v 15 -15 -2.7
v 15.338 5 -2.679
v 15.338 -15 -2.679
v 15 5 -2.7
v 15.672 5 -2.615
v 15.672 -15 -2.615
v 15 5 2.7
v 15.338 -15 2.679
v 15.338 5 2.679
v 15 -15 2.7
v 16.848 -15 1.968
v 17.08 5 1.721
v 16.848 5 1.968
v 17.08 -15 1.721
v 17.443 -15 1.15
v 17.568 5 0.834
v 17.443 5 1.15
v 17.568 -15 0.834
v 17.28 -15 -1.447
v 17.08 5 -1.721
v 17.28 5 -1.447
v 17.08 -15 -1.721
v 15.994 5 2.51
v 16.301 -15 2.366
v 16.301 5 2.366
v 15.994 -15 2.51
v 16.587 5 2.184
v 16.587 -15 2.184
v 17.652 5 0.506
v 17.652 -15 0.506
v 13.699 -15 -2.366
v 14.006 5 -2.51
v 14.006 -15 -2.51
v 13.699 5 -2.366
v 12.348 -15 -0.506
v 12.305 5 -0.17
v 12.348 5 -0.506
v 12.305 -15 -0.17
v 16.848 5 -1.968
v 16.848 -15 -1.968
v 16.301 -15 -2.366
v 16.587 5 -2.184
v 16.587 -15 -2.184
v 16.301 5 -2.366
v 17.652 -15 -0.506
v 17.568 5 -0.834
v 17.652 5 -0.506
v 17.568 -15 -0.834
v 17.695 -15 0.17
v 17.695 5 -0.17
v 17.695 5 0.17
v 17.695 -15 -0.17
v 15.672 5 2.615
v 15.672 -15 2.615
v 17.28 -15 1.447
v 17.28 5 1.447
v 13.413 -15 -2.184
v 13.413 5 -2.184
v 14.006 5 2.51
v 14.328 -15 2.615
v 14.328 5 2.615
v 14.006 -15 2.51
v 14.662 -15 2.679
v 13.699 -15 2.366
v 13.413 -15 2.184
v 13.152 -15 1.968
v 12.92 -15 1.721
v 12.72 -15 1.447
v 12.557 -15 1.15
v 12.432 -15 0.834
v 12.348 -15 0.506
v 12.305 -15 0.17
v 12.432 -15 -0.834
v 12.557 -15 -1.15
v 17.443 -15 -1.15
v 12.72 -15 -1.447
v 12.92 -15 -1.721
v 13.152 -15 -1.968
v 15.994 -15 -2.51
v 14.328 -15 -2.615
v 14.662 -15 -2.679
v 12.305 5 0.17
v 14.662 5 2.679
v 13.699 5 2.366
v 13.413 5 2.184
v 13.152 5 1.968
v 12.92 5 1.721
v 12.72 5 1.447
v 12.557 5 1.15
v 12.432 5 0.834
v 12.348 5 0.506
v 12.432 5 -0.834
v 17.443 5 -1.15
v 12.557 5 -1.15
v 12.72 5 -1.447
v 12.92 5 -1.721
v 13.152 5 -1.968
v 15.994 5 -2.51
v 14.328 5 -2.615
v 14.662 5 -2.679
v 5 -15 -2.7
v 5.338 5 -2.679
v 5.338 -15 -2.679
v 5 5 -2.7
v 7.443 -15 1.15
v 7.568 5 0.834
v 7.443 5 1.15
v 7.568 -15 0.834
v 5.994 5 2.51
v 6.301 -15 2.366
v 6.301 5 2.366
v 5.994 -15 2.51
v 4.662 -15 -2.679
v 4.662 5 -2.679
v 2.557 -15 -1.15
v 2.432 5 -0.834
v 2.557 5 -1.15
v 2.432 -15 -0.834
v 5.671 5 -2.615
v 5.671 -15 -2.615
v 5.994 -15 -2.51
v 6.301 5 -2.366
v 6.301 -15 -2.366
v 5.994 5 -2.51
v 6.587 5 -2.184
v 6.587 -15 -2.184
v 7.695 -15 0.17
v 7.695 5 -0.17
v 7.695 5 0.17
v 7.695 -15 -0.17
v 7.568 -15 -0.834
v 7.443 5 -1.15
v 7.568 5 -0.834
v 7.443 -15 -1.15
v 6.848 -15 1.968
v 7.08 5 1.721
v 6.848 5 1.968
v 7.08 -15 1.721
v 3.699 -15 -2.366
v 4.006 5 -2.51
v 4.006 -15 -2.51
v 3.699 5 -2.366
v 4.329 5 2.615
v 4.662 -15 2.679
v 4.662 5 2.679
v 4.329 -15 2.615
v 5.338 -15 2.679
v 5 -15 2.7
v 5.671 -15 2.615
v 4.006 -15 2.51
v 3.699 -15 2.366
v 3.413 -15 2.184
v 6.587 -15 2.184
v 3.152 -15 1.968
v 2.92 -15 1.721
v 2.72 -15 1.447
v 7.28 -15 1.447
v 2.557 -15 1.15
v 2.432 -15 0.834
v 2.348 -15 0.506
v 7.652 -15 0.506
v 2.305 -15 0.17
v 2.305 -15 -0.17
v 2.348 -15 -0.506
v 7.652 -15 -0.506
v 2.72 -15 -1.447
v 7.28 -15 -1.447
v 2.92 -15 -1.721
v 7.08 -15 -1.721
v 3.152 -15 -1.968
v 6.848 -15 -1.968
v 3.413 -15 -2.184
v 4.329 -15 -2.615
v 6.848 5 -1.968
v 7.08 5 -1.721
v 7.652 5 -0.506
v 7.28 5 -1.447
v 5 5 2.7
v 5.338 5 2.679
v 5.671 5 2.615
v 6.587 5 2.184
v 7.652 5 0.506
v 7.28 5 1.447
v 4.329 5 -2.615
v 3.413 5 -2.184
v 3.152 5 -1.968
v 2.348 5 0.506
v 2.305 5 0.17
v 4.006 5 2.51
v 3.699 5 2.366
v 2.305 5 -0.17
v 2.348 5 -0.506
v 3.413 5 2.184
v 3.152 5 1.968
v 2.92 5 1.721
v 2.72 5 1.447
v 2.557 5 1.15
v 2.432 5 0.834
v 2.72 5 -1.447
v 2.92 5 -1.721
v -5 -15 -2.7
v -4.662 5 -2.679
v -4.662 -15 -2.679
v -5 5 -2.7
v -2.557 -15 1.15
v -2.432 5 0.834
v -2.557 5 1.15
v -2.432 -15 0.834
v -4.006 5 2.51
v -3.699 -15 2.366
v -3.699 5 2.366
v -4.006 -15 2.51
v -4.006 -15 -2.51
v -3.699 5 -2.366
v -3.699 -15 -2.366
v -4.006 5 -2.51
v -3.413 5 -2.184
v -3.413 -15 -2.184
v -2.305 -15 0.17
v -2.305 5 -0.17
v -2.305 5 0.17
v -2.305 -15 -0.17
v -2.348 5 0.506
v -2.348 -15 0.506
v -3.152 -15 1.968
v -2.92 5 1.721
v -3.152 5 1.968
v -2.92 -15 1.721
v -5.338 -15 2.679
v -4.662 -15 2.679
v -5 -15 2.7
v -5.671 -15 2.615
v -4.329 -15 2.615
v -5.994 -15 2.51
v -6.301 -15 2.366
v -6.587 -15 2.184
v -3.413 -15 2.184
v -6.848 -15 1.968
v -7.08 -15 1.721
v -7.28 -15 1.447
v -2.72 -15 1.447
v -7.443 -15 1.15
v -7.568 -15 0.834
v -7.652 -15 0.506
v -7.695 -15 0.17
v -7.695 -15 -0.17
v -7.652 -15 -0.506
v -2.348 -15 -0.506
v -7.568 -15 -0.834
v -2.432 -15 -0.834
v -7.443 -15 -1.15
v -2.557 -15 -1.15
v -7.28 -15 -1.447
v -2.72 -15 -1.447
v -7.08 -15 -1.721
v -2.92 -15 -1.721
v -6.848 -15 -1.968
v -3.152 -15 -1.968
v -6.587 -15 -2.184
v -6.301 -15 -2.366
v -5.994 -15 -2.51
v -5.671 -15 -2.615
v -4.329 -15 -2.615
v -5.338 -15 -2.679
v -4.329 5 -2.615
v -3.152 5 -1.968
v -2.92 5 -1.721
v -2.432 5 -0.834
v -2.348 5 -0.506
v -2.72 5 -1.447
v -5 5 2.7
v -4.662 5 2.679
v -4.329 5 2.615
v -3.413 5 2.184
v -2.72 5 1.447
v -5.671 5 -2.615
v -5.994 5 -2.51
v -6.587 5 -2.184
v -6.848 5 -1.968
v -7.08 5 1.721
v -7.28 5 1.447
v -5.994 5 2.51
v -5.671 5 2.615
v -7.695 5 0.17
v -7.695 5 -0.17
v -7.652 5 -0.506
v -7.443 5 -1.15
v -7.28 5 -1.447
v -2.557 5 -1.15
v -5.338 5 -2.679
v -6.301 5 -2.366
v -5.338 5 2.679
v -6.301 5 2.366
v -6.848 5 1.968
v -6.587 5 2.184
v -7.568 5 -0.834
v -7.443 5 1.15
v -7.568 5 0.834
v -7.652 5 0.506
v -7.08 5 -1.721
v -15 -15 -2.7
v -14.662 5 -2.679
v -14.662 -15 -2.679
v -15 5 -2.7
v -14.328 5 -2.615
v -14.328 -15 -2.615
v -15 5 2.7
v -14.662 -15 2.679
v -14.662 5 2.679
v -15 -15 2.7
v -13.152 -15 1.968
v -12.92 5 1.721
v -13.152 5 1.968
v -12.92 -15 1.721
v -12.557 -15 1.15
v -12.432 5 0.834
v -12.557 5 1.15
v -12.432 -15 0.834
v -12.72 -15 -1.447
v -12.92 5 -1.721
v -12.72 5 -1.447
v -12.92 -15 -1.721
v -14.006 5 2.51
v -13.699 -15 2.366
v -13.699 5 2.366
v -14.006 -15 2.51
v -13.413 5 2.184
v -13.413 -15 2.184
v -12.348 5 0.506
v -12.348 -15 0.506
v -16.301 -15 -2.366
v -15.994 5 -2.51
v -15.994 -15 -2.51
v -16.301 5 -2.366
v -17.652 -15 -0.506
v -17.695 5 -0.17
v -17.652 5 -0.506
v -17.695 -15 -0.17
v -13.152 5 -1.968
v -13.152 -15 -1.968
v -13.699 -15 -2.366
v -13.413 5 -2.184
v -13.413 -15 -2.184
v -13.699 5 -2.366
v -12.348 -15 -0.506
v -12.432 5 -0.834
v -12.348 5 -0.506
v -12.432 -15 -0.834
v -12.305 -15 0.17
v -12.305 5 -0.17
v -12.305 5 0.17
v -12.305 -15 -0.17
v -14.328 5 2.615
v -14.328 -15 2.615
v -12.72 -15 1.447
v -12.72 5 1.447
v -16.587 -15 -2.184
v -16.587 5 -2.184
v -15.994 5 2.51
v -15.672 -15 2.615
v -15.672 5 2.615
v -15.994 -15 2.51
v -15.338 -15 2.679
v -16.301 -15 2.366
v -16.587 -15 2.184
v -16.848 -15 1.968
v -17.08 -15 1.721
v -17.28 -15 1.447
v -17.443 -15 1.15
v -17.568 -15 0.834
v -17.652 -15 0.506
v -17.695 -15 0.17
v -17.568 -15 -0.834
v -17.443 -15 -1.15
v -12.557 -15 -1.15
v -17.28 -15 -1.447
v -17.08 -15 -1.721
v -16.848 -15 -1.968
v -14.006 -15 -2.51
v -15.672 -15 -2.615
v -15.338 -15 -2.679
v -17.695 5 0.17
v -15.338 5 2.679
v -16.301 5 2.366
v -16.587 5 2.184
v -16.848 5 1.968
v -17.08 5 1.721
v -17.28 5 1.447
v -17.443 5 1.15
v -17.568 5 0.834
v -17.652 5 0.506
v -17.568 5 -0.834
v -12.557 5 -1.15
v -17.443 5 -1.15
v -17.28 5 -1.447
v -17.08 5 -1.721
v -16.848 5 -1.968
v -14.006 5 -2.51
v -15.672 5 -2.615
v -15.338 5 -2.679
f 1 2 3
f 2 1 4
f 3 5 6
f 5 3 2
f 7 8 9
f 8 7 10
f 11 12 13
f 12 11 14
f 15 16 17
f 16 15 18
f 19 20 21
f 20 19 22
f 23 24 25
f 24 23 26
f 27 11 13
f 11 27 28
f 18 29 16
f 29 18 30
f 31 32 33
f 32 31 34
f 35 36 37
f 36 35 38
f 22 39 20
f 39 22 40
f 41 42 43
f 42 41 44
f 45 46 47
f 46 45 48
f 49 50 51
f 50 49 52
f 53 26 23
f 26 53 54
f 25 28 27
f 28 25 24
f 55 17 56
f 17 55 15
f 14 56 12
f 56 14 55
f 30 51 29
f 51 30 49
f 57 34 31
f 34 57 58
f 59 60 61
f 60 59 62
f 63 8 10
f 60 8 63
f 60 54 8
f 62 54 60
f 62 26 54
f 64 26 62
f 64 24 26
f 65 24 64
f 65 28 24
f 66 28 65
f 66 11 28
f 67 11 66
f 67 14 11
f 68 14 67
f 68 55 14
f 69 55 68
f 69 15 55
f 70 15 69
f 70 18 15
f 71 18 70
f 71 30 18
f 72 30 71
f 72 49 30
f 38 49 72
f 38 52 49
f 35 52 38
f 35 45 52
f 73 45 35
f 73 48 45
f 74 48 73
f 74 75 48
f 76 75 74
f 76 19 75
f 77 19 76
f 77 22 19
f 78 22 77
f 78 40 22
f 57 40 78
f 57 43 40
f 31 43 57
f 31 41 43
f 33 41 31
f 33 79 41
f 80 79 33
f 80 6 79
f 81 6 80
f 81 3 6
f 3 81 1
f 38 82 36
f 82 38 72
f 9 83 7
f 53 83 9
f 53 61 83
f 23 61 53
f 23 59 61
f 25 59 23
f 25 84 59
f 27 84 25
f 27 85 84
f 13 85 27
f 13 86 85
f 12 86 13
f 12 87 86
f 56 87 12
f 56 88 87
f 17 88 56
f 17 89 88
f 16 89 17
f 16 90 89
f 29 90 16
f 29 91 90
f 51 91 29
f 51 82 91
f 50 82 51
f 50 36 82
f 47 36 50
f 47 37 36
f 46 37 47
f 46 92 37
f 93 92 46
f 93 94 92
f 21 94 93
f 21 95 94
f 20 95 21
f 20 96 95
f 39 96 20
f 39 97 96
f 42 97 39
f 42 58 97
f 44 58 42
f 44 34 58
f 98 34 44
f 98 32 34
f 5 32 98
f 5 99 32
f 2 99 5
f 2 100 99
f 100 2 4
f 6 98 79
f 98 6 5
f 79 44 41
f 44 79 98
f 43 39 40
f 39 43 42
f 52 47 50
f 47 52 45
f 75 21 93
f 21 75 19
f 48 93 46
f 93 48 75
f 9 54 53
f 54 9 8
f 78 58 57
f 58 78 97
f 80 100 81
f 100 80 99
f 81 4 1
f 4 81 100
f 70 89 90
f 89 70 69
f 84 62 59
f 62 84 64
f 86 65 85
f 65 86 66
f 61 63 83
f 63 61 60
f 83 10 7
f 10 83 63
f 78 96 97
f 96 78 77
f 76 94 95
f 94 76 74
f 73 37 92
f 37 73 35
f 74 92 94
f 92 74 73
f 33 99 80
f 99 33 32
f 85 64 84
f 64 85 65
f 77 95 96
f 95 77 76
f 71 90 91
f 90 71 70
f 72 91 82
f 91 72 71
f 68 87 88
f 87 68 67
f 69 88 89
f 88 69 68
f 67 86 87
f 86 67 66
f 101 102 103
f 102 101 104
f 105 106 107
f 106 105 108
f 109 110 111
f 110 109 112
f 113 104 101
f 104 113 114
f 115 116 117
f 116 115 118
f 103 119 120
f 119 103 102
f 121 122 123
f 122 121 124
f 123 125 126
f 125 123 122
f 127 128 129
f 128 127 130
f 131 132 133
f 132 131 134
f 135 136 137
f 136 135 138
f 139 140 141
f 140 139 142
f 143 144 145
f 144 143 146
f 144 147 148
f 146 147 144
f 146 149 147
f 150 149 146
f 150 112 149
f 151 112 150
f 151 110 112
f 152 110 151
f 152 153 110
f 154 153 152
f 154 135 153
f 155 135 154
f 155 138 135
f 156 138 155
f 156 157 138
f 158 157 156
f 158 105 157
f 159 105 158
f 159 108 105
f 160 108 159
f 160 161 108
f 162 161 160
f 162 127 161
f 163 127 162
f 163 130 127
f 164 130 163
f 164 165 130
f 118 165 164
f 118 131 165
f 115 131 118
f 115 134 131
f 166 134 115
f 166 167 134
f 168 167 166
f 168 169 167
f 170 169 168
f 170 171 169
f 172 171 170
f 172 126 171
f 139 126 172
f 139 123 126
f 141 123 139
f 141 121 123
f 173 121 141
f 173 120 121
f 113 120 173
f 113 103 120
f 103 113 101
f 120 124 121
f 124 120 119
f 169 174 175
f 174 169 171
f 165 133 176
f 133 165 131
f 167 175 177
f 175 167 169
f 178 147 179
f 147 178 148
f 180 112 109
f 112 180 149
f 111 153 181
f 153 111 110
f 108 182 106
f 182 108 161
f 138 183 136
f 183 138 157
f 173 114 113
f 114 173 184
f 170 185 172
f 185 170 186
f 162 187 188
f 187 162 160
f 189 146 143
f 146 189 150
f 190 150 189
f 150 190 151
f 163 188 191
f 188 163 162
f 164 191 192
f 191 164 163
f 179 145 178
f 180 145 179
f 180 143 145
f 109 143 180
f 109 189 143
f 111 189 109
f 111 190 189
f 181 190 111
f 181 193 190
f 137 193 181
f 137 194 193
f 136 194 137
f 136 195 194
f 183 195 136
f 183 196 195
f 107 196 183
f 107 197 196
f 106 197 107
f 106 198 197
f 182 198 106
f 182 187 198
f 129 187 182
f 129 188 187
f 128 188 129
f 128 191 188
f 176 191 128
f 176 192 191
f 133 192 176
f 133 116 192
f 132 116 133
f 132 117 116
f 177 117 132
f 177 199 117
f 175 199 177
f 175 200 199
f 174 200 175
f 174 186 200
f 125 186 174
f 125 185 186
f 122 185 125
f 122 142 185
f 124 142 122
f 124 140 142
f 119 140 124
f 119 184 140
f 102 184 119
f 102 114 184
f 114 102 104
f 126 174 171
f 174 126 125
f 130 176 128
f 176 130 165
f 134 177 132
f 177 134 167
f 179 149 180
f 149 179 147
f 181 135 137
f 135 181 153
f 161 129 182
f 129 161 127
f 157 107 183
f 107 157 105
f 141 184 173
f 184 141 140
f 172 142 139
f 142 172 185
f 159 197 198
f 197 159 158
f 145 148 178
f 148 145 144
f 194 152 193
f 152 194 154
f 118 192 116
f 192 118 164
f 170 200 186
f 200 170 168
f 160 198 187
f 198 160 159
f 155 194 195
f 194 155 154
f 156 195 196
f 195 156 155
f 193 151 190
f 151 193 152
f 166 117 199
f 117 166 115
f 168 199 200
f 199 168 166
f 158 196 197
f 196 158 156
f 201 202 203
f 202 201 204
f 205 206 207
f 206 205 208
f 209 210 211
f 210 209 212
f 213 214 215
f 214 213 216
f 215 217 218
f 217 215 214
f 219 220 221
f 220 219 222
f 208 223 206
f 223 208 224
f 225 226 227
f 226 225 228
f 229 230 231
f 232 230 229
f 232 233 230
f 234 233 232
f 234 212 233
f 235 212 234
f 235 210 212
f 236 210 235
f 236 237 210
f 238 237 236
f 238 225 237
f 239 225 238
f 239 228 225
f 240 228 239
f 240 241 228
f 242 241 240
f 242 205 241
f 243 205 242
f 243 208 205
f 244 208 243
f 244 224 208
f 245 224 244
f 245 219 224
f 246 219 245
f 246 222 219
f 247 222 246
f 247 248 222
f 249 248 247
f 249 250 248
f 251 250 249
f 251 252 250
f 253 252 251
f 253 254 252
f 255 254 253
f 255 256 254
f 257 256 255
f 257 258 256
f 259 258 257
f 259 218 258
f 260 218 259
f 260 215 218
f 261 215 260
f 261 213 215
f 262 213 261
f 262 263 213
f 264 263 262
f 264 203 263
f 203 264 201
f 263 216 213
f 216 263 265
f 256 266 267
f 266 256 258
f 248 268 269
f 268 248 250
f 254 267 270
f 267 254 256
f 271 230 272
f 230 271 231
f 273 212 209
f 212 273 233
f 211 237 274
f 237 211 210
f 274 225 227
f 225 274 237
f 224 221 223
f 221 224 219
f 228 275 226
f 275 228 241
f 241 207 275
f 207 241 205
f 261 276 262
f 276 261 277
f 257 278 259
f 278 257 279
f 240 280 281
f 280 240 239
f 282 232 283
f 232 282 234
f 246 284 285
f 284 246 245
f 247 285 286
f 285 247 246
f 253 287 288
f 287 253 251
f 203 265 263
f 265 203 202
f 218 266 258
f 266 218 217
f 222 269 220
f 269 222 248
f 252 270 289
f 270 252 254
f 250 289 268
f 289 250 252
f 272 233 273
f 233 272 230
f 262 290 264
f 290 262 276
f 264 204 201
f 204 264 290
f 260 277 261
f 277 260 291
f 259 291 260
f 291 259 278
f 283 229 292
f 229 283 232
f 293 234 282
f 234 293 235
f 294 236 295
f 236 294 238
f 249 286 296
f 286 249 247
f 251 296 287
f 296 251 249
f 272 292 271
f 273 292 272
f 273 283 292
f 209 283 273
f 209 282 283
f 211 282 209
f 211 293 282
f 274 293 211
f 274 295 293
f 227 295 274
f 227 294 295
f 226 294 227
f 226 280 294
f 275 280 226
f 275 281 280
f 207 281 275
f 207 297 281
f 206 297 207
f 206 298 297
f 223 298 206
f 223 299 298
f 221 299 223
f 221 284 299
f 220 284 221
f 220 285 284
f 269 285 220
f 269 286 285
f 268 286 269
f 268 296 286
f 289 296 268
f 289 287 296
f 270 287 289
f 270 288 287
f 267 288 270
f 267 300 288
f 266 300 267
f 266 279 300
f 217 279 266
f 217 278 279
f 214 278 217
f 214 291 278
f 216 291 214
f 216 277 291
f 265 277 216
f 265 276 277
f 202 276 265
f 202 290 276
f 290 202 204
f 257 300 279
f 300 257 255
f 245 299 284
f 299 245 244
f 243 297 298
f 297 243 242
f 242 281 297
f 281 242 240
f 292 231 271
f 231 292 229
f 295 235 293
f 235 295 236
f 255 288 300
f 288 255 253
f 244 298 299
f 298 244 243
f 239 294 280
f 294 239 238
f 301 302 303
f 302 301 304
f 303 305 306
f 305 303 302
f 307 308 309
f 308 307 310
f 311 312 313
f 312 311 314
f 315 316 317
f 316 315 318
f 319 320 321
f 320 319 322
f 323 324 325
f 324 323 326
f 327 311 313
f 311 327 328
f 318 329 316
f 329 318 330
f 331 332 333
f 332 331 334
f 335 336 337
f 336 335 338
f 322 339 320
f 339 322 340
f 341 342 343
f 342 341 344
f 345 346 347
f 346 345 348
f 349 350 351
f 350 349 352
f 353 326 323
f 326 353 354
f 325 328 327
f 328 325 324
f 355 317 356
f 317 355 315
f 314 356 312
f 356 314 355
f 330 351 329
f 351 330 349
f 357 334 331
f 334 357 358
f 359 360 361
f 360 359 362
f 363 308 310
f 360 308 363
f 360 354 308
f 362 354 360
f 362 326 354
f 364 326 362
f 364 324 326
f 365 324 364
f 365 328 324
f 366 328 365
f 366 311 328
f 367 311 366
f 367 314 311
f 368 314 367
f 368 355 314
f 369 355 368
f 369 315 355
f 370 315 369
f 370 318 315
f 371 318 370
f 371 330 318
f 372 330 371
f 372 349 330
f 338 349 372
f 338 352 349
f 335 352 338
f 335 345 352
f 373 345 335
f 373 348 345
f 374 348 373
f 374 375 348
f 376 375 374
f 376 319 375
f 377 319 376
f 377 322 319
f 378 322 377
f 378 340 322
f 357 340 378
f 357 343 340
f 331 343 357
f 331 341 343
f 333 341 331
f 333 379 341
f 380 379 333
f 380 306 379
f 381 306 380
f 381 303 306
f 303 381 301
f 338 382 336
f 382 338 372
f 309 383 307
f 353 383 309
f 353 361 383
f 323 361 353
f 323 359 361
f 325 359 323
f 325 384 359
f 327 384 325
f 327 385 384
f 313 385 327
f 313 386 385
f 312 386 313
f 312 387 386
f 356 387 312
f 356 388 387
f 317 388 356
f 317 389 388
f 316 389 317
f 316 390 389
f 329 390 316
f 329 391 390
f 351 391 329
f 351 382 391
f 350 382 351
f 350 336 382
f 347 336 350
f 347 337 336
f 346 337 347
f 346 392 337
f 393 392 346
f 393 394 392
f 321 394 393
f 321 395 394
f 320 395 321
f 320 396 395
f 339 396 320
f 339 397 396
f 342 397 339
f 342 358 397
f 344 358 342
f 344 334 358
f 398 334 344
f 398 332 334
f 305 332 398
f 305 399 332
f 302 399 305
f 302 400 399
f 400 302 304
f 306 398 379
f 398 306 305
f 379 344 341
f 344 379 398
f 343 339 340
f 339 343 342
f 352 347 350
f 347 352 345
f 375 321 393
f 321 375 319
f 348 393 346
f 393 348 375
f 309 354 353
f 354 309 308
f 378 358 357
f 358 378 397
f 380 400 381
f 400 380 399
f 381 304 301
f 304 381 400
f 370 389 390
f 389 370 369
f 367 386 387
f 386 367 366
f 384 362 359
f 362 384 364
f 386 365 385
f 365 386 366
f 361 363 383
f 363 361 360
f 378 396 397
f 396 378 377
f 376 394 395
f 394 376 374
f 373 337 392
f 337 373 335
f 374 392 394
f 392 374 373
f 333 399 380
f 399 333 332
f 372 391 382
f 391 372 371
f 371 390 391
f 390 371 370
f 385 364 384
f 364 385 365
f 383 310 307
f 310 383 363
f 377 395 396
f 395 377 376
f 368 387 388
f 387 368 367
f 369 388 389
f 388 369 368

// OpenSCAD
$fn = 50;
translate([90,0,0]){
    #translate([-75,5,-0])rotate([105,90,15])cylinder(20,2.7,2.7);
    
    #translate([-85,5,-0])rotate([105,90,15])cylinder(20,2.7,2.7);
    
    #translate([-95,5,-0])rotate([105,90,15])cylinder(20,2.7,2.7);
    
    #translate([-105,5,-0])rotate([105,90,15])cylinder(20,2.7,2.7);
}
